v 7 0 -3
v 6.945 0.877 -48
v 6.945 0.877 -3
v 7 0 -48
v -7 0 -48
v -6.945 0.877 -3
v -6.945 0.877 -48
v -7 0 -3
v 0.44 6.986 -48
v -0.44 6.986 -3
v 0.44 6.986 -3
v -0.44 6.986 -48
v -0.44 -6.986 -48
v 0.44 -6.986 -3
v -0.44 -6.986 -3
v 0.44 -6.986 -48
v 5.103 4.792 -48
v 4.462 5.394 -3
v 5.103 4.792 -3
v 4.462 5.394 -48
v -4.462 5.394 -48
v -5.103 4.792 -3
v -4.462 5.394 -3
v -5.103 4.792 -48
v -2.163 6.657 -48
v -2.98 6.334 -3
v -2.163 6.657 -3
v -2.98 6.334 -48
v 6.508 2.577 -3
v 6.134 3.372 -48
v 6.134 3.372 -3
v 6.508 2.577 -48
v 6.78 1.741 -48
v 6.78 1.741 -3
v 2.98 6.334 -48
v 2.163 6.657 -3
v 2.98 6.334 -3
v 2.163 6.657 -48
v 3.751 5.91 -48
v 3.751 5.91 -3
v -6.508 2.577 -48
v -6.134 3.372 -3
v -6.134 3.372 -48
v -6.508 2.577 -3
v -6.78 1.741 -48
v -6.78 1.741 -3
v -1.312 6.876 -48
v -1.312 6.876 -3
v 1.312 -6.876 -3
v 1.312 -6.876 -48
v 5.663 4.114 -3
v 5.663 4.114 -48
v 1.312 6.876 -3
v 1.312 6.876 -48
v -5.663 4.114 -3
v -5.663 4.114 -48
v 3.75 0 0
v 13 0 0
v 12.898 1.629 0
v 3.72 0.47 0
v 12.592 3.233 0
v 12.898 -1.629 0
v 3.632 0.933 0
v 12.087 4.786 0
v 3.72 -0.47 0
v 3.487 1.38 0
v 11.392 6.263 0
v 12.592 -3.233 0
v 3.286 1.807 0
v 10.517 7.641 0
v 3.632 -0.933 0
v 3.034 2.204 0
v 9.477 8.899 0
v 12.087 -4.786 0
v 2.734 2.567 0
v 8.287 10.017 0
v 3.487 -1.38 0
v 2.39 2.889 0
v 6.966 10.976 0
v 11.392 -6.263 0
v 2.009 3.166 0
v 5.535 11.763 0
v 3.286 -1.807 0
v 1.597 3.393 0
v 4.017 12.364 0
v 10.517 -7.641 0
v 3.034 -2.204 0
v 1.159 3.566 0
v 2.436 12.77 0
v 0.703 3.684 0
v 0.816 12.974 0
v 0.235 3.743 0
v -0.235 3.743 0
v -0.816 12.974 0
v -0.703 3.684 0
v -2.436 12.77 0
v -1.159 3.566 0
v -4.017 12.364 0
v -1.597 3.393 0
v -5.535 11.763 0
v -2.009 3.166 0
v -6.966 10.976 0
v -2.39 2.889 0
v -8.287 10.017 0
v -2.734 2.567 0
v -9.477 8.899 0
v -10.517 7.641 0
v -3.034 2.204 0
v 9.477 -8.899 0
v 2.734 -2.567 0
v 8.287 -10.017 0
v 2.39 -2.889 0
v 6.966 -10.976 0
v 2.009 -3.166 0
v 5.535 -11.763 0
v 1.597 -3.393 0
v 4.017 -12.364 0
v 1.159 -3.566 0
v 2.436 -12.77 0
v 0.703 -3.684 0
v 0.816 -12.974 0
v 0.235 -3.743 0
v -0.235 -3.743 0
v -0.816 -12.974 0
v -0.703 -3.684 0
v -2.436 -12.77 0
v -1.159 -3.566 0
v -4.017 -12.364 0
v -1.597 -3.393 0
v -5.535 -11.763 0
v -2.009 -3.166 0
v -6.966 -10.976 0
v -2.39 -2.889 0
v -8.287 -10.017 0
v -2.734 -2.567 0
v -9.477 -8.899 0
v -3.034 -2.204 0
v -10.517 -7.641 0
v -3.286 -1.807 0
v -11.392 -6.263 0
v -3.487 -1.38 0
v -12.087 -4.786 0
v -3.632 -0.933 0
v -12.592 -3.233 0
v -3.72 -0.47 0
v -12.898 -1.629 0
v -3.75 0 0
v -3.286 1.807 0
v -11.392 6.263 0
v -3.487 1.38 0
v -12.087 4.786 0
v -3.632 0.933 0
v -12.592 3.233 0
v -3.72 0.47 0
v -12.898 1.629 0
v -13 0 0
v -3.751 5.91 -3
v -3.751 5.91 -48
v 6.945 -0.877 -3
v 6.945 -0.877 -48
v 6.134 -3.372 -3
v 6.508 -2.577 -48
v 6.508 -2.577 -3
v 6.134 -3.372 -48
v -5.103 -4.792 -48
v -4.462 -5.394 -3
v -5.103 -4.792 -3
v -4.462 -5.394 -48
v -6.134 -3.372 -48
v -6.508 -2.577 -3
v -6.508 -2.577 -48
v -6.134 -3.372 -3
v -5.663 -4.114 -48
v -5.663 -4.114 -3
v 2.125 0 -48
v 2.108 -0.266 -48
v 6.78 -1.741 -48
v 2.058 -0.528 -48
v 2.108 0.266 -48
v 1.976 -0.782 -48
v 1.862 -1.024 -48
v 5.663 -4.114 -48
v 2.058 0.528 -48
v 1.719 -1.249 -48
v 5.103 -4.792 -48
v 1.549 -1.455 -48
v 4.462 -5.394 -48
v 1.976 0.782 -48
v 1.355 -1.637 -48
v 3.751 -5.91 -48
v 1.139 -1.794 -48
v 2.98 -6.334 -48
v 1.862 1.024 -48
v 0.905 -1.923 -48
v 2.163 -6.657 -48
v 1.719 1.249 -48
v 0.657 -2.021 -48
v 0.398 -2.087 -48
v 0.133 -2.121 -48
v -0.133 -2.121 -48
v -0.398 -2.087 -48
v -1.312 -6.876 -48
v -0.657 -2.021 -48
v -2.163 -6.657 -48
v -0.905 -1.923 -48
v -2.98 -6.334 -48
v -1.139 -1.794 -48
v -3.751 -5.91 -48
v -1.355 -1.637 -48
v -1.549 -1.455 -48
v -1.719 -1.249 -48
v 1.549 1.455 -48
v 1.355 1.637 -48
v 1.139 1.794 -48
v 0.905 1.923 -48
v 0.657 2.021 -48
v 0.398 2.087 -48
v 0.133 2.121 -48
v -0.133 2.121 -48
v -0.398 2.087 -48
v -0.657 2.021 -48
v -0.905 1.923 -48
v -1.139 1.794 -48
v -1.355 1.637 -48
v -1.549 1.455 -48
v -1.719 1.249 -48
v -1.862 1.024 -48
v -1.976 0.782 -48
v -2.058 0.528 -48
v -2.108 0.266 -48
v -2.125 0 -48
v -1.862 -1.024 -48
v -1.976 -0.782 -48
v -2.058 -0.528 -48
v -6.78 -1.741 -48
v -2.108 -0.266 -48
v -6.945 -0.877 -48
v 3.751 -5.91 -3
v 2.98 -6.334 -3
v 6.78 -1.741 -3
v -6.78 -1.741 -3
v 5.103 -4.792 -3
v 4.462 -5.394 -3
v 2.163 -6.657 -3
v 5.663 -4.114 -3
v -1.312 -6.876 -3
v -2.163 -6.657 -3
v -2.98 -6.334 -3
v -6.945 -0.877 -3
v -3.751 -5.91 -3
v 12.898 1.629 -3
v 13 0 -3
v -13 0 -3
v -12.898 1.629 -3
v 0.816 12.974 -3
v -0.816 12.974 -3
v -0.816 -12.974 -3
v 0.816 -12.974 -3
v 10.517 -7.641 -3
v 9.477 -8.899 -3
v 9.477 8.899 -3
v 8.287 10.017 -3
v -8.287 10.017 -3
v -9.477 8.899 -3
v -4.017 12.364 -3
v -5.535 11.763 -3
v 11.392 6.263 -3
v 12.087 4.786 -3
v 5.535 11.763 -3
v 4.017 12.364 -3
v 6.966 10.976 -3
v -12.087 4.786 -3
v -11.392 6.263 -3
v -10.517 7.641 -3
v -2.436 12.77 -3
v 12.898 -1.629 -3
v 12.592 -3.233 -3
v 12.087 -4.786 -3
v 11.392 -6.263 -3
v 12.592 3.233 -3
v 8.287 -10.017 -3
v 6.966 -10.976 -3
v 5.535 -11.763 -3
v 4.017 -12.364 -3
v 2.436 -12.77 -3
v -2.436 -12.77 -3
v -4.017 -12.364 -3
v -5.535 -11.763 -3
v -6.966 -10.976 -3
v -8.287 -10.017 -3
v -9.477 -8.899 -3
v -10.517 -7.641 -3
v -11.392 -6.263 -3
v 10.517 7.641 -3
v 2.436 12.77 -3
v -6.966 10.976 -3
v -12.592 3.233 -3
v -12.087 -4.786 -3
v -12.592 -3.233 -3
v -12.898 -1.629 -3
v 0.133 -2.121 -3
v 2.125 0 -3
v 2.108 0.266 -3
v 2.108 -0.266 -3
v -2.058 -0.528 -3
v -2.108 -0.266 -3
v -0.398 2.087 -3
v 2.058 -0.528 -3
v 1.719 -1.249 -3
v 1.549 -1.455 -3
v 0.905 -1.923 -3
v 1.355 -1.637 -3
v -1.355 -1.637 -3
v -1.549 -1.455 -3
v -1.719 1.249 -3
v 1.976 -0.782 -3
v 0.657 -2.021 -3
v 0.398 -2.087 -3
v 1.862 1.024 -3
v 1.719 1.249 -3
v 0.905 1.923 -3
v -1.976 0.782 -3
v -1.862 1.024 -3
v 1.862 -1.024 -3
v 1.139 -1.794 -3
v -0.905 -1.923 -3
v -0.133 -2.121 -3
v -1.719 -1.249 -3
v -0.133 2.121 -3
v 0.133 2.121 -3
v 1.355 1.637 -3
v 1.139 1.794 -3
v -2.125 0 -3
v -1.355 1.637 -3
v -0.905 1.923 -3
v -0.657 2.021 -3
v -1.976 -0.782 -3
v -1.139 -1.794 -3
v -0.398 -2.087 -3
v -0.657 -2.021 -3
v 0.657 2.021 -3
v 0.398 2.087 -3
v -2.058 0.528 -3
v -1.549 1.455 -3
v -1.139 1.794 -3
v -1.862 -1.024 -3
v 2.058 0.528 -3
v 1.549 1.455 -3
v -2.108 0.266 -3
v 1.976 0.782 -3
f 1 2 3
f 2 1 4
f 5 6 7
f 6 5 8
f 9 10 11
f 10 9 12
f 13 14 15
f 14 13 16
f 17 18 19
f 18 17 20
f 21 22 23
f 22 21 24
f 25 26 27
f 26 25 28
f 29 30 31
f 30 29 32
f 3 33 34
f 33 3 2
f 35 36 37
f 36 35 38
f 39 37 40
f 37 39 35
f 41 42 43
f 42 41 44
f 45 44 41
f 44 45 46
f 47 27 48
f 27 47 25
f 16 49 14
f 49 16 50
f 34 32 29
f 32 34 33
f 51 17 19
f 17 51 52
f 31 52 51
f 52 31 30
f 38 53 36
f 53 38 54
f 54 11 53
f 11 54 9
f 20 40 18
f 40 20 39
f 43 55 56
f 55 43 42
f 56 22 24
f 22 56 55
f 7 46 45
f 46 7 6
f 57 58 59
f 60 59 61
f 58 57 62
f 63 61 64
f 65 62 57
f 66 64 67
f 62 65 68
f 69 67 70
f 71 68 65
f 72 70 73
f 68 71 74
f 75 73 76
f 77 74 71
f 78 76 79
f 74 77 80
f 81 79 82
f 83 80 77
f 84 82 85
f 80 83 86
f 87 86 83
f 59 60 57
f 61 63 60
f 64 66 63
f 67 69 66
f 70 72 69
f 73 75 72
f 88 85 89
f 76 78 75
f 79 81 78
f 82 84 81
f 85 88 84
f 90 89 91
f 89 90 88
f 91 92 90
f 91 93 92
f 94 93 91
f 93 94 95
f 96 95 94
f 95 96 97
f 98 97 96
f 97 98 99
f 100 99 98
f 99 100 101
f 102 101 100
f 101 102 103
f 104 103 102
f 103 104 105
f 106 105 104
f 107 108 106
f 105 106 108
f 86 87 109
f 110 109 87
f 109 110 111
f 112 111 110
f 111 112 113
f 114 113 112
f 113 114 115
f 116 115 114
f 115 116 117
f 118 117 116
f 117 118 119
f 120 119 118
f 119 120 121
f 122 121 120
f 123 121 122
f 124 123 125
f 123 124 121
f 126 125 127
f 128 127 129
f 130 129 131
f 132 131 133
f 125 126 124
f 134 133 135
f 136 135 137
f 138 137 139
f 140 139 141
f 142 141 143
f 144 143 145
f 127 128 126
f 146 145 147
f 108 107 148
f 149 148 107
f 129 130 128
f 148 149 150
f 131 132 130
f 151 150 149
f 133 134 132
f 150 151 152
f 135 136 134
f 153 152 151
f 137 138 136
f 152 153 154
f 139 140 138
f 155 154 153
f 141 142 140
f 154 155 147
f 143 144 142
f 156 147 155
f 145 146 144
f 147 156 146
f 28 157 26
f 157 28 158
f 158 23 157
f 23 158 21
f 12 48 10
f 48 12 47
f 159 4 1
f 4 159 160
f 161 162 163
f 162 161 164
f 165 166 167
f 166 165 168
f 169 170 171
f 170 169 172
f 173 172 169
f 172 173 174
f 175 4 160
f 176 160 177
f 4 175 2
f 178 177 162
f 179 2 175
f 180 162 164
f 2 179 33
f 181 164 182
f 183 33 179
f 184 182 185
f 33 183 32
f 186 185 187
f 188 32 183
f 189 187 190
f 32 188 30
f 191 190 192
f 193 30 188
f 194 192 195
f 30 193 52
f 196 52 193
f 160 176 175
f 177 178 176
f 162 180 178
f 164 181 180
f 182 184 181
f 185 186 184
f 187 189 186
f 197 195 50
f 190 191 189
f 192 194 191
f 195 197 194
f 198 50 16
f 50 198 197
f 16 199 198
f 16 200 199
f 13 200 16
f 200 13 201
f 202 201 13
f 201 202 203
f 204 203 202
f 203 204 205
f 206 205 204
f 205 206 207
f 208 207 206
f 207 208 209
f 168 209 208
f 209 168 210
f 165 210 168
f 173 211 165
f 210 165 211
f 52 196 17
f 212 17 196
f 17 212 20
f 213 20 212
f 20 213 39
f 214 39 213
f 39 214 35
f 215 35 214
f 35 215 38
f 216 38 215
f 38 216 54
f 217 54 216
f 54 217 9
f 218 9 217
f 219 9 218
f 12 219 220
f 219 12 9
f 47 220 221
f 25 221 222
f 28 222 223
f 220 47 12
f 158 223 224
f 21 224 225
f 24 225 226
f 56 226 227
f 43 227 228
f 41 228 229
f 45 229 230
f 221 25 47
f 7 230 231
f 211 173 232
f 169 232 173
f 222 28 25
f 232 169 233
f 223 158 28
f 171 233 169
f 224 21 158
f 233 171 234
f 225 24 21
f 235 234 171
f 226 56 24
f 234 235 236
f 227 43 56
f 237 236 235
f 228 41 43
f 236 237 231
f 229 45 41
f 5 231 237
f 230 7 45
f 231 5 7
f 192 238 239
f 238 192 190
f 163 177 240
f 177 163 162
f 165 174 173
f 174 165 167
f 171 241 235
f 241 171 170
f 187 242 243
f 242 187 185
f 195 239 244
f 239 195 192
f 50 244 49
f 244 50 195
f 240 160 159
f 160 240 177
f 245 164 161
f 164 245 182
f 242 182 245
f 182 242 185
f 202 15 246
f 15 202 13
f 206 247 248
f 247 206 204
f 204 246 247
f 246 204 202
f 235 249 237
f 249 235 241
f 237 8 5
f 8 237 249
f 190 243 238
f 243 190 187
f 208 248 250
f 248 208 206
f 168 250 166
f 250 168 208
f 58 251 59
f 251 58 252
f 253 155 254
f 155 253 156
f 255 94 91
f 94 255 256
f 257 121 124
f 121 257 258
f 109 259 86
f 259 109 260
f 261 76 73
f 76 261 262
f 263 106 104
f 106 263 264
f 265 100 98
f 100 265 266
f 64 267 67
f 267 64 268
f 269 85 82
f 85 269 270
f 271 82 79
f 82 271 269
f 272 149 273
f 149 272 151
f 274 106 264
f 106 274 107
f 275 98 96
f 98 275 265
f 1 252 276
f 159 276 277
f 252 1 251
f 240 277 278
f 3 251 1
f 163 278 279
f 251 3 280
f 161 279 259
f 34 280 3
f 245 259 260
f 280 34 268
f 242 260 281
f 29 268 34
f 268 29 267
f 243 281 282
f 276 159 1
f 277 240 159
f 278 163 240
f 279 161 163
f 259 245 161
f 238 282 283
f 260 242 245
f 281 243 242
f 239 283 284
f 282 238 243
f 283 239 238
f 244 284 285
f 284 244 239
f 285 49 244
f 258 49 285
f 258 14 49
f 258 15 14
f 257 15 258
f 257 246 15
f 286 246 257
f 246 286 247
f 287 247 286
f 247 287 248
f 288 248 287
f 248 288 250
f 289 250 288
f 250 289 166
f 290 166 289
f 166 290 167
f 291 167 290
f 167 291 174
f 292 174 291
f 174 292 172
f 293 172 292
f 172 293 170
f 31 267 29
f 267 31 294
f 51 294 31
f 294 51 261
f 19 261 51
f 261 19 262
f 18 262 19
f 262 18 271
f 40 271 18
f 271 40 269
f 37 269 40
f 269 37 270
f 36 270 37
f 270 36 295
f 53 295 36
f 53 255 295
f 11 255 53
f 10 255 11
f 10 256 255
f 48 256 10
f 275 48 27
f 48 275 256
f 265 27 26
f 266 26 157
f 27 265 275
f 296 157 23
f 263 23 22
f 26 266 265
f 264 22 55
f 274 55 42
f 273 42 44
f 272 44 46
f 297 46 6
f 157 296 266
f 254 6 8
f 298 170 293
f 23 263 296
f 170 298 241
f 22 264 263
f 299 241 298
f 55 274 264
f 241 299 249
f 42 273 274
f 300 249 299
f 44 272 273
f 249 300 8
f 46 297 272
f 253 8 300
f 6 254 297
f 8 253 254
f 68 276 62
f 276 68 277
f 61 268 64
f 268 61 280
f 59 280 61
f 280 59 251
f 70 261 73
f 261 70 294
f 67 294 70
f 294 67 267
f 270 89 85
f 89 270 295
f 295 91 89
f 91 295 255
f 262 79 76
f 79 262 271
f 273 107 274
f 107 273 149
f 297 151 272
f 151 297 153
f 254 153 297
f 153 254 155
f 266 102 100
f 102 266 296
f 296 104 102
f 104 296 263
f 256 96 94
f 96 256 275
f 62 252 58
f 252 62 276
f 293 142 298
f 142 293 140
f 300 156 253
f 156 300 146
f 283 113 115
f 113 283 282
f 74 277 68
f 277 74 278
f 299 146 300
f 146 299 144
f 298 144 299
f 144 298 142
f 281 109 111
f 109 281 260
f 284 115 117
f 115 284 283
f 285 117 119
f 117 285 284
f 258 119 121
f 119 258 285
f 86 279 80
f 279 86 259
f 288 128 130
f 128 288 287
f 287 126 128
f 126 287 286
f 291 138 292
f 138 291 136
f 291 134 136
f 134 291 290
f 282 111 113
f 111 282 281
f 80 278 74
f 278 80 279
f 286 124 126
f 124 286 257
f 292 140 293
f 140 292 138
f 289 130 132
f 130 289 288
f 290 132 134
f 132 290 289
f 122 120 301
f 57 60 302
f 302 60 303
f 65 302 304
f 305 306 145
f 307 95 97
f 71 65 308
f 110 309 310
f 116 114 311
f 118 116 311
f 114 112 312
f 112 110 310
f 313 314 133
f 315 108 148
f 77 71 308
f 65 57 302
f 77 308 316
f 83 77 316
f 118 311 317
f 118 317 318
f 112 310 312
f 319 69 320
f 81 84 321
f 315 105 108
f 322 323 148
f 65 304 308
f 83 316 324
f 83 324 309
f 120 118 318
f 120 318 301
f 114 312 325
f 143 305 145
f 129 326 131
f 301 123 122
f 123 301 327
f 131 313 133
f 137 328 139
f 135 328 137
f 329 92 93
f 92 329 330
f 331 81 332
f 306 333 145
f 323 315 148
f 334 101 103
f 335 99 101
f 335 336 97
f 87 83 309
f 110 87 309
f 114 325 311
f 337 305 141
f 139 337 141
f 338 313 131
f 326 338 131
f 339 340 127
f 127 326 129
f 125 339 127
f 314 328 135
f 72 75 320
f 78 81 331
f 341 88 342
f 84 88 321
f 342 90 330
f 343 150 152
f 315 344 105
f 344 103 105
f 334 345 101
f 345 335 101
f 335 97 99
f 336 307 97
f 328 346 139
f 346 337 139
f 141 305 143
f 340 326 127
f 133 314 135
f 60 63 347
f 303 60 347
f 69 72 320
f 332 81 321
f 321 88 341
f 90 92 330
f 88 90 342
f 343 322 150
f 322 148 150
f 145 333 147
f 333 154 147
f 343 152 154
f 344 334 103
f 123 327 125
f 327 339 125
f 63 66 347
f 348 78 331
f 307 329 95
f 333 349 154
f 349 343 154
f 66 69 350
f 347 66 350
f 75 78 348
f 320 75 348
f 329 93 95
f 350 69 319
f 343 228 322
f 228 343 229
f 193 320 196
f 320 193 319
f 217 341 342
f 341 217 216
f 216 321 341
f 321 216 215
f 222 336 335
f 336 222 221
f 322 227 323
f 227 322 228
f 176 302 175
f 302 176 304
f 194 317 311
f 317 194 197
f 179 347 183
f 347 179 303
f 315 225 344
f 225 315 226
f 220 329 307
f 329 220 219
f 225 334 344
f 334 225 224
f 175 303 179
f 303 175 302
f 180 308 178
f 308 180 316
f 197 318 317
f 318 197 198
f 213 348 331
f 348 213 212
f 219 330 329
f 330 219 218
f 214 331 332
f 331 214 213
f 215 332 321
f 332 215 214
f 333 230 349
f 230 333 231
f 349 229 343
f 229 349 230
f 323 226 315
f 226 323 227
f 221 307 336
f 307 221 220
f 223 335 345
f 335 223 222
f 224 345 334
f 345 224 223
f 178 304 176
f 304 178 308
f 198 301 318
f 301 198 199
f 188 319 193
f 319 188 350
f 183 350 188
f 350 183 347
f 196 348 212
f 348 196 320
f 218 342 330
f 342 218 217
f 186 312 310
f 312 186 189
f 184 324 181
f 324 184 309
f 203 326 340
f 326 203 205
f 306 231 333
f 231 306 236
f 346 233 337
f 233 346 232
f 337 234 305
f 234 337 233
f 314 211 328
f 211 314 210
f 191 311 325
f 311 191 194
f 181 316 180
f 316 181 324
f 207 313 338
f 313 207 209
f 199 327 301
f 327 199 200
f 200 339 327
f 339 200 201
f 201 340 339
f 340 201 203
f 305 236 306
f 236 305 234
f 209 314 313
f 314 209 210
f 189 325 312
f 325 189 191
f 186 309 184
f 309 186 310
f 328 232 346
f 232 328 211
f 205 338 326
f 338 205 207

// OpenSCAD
$fn = 50;


difference() {
	union() {
		translate(v = [0, 0, -48.0000000000]) {
			cylinder(h = 48, r = 7.0000000000);
		}
		translate(v = [0, 0, -3.0000000000]) {
			cylinder(h = 3, r = 13.0000000000);
		}
	}
	union() {
		translate(v = [0, 0, 0]) {
			rotate(a = [0, 0, 0]) {
				difference() {
					union() {
						#translate(v = [0, 0, -48.0000000000]) {
							cylinder(h = 48, r = 2.0000000000);
						}
						#translate(v = [0, 0, -3]) {
							cylinder(h = 3, r1 = 2.1250000000, r2 = 3.7500000000);
						}
						#translate(v = [0, 0, -48.0000000000]) {
							cylinder(h = 48, r = 2.1250000000);
						}
						#translate(v = [0, 0, -48.0000000000]) {
							cylinder(h = 48, r = 2.0000000000);
						}
					}
					union();
				}
			}
		}
	}
}
